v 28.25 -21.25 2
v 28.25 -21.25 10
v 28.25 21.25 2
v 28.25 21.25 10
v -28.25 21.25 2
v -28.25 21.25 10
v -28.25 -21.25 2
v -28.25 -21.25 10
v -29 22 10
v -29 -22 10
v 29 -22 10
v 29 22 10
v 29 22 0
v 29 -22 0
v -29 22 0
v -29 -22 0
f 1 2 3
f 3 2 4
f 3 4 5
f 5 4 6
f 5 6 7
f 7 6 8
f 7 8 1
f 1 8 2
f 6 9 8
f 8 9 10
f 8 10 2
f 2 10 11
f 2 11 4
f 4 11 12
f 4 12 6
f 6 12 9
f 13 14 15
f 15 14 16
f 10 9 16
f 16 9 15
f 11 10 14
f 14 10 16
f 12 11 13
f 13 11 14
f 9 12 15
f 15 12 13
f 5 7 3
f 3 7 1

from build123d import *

# Parameters (mm, degrees)
SKETCH1_W           = 58
SKETCH1_H           = 44
SKETCH1_W_2         = 56.5
SKETCH1_H_2         = 42.5
BOSS_EXTRUDE1_DEPTH = 10
SKETCH2_W           = 58
SKETCH2_H           = 44
BOSS_EXTRUDE2_DEPTH = 2


with BuildPart() as part:
    # Sketch1 → Boss-Extrude1 (new body)
    with BuildSketch(Plane.XY):
        Rectangle(SKETCH1_W, SKETCH1_H)
        Rectangle(SKETCH1_W_2, SKETCH1_H_2, mode=Mode.SUBTRACT)
    extrude(amount=BOSS_EXTRUDE1_DEPTH)

    # Sketch2 → Boss-Extrude2 (add)
    with BuildSketch(Plane.XY):
        Rectangle(SKETCH2_W, SKETCH2_H)
    extrude(amount=BOSS_EXTRUDE2_DEPTH)


solid = part.part
